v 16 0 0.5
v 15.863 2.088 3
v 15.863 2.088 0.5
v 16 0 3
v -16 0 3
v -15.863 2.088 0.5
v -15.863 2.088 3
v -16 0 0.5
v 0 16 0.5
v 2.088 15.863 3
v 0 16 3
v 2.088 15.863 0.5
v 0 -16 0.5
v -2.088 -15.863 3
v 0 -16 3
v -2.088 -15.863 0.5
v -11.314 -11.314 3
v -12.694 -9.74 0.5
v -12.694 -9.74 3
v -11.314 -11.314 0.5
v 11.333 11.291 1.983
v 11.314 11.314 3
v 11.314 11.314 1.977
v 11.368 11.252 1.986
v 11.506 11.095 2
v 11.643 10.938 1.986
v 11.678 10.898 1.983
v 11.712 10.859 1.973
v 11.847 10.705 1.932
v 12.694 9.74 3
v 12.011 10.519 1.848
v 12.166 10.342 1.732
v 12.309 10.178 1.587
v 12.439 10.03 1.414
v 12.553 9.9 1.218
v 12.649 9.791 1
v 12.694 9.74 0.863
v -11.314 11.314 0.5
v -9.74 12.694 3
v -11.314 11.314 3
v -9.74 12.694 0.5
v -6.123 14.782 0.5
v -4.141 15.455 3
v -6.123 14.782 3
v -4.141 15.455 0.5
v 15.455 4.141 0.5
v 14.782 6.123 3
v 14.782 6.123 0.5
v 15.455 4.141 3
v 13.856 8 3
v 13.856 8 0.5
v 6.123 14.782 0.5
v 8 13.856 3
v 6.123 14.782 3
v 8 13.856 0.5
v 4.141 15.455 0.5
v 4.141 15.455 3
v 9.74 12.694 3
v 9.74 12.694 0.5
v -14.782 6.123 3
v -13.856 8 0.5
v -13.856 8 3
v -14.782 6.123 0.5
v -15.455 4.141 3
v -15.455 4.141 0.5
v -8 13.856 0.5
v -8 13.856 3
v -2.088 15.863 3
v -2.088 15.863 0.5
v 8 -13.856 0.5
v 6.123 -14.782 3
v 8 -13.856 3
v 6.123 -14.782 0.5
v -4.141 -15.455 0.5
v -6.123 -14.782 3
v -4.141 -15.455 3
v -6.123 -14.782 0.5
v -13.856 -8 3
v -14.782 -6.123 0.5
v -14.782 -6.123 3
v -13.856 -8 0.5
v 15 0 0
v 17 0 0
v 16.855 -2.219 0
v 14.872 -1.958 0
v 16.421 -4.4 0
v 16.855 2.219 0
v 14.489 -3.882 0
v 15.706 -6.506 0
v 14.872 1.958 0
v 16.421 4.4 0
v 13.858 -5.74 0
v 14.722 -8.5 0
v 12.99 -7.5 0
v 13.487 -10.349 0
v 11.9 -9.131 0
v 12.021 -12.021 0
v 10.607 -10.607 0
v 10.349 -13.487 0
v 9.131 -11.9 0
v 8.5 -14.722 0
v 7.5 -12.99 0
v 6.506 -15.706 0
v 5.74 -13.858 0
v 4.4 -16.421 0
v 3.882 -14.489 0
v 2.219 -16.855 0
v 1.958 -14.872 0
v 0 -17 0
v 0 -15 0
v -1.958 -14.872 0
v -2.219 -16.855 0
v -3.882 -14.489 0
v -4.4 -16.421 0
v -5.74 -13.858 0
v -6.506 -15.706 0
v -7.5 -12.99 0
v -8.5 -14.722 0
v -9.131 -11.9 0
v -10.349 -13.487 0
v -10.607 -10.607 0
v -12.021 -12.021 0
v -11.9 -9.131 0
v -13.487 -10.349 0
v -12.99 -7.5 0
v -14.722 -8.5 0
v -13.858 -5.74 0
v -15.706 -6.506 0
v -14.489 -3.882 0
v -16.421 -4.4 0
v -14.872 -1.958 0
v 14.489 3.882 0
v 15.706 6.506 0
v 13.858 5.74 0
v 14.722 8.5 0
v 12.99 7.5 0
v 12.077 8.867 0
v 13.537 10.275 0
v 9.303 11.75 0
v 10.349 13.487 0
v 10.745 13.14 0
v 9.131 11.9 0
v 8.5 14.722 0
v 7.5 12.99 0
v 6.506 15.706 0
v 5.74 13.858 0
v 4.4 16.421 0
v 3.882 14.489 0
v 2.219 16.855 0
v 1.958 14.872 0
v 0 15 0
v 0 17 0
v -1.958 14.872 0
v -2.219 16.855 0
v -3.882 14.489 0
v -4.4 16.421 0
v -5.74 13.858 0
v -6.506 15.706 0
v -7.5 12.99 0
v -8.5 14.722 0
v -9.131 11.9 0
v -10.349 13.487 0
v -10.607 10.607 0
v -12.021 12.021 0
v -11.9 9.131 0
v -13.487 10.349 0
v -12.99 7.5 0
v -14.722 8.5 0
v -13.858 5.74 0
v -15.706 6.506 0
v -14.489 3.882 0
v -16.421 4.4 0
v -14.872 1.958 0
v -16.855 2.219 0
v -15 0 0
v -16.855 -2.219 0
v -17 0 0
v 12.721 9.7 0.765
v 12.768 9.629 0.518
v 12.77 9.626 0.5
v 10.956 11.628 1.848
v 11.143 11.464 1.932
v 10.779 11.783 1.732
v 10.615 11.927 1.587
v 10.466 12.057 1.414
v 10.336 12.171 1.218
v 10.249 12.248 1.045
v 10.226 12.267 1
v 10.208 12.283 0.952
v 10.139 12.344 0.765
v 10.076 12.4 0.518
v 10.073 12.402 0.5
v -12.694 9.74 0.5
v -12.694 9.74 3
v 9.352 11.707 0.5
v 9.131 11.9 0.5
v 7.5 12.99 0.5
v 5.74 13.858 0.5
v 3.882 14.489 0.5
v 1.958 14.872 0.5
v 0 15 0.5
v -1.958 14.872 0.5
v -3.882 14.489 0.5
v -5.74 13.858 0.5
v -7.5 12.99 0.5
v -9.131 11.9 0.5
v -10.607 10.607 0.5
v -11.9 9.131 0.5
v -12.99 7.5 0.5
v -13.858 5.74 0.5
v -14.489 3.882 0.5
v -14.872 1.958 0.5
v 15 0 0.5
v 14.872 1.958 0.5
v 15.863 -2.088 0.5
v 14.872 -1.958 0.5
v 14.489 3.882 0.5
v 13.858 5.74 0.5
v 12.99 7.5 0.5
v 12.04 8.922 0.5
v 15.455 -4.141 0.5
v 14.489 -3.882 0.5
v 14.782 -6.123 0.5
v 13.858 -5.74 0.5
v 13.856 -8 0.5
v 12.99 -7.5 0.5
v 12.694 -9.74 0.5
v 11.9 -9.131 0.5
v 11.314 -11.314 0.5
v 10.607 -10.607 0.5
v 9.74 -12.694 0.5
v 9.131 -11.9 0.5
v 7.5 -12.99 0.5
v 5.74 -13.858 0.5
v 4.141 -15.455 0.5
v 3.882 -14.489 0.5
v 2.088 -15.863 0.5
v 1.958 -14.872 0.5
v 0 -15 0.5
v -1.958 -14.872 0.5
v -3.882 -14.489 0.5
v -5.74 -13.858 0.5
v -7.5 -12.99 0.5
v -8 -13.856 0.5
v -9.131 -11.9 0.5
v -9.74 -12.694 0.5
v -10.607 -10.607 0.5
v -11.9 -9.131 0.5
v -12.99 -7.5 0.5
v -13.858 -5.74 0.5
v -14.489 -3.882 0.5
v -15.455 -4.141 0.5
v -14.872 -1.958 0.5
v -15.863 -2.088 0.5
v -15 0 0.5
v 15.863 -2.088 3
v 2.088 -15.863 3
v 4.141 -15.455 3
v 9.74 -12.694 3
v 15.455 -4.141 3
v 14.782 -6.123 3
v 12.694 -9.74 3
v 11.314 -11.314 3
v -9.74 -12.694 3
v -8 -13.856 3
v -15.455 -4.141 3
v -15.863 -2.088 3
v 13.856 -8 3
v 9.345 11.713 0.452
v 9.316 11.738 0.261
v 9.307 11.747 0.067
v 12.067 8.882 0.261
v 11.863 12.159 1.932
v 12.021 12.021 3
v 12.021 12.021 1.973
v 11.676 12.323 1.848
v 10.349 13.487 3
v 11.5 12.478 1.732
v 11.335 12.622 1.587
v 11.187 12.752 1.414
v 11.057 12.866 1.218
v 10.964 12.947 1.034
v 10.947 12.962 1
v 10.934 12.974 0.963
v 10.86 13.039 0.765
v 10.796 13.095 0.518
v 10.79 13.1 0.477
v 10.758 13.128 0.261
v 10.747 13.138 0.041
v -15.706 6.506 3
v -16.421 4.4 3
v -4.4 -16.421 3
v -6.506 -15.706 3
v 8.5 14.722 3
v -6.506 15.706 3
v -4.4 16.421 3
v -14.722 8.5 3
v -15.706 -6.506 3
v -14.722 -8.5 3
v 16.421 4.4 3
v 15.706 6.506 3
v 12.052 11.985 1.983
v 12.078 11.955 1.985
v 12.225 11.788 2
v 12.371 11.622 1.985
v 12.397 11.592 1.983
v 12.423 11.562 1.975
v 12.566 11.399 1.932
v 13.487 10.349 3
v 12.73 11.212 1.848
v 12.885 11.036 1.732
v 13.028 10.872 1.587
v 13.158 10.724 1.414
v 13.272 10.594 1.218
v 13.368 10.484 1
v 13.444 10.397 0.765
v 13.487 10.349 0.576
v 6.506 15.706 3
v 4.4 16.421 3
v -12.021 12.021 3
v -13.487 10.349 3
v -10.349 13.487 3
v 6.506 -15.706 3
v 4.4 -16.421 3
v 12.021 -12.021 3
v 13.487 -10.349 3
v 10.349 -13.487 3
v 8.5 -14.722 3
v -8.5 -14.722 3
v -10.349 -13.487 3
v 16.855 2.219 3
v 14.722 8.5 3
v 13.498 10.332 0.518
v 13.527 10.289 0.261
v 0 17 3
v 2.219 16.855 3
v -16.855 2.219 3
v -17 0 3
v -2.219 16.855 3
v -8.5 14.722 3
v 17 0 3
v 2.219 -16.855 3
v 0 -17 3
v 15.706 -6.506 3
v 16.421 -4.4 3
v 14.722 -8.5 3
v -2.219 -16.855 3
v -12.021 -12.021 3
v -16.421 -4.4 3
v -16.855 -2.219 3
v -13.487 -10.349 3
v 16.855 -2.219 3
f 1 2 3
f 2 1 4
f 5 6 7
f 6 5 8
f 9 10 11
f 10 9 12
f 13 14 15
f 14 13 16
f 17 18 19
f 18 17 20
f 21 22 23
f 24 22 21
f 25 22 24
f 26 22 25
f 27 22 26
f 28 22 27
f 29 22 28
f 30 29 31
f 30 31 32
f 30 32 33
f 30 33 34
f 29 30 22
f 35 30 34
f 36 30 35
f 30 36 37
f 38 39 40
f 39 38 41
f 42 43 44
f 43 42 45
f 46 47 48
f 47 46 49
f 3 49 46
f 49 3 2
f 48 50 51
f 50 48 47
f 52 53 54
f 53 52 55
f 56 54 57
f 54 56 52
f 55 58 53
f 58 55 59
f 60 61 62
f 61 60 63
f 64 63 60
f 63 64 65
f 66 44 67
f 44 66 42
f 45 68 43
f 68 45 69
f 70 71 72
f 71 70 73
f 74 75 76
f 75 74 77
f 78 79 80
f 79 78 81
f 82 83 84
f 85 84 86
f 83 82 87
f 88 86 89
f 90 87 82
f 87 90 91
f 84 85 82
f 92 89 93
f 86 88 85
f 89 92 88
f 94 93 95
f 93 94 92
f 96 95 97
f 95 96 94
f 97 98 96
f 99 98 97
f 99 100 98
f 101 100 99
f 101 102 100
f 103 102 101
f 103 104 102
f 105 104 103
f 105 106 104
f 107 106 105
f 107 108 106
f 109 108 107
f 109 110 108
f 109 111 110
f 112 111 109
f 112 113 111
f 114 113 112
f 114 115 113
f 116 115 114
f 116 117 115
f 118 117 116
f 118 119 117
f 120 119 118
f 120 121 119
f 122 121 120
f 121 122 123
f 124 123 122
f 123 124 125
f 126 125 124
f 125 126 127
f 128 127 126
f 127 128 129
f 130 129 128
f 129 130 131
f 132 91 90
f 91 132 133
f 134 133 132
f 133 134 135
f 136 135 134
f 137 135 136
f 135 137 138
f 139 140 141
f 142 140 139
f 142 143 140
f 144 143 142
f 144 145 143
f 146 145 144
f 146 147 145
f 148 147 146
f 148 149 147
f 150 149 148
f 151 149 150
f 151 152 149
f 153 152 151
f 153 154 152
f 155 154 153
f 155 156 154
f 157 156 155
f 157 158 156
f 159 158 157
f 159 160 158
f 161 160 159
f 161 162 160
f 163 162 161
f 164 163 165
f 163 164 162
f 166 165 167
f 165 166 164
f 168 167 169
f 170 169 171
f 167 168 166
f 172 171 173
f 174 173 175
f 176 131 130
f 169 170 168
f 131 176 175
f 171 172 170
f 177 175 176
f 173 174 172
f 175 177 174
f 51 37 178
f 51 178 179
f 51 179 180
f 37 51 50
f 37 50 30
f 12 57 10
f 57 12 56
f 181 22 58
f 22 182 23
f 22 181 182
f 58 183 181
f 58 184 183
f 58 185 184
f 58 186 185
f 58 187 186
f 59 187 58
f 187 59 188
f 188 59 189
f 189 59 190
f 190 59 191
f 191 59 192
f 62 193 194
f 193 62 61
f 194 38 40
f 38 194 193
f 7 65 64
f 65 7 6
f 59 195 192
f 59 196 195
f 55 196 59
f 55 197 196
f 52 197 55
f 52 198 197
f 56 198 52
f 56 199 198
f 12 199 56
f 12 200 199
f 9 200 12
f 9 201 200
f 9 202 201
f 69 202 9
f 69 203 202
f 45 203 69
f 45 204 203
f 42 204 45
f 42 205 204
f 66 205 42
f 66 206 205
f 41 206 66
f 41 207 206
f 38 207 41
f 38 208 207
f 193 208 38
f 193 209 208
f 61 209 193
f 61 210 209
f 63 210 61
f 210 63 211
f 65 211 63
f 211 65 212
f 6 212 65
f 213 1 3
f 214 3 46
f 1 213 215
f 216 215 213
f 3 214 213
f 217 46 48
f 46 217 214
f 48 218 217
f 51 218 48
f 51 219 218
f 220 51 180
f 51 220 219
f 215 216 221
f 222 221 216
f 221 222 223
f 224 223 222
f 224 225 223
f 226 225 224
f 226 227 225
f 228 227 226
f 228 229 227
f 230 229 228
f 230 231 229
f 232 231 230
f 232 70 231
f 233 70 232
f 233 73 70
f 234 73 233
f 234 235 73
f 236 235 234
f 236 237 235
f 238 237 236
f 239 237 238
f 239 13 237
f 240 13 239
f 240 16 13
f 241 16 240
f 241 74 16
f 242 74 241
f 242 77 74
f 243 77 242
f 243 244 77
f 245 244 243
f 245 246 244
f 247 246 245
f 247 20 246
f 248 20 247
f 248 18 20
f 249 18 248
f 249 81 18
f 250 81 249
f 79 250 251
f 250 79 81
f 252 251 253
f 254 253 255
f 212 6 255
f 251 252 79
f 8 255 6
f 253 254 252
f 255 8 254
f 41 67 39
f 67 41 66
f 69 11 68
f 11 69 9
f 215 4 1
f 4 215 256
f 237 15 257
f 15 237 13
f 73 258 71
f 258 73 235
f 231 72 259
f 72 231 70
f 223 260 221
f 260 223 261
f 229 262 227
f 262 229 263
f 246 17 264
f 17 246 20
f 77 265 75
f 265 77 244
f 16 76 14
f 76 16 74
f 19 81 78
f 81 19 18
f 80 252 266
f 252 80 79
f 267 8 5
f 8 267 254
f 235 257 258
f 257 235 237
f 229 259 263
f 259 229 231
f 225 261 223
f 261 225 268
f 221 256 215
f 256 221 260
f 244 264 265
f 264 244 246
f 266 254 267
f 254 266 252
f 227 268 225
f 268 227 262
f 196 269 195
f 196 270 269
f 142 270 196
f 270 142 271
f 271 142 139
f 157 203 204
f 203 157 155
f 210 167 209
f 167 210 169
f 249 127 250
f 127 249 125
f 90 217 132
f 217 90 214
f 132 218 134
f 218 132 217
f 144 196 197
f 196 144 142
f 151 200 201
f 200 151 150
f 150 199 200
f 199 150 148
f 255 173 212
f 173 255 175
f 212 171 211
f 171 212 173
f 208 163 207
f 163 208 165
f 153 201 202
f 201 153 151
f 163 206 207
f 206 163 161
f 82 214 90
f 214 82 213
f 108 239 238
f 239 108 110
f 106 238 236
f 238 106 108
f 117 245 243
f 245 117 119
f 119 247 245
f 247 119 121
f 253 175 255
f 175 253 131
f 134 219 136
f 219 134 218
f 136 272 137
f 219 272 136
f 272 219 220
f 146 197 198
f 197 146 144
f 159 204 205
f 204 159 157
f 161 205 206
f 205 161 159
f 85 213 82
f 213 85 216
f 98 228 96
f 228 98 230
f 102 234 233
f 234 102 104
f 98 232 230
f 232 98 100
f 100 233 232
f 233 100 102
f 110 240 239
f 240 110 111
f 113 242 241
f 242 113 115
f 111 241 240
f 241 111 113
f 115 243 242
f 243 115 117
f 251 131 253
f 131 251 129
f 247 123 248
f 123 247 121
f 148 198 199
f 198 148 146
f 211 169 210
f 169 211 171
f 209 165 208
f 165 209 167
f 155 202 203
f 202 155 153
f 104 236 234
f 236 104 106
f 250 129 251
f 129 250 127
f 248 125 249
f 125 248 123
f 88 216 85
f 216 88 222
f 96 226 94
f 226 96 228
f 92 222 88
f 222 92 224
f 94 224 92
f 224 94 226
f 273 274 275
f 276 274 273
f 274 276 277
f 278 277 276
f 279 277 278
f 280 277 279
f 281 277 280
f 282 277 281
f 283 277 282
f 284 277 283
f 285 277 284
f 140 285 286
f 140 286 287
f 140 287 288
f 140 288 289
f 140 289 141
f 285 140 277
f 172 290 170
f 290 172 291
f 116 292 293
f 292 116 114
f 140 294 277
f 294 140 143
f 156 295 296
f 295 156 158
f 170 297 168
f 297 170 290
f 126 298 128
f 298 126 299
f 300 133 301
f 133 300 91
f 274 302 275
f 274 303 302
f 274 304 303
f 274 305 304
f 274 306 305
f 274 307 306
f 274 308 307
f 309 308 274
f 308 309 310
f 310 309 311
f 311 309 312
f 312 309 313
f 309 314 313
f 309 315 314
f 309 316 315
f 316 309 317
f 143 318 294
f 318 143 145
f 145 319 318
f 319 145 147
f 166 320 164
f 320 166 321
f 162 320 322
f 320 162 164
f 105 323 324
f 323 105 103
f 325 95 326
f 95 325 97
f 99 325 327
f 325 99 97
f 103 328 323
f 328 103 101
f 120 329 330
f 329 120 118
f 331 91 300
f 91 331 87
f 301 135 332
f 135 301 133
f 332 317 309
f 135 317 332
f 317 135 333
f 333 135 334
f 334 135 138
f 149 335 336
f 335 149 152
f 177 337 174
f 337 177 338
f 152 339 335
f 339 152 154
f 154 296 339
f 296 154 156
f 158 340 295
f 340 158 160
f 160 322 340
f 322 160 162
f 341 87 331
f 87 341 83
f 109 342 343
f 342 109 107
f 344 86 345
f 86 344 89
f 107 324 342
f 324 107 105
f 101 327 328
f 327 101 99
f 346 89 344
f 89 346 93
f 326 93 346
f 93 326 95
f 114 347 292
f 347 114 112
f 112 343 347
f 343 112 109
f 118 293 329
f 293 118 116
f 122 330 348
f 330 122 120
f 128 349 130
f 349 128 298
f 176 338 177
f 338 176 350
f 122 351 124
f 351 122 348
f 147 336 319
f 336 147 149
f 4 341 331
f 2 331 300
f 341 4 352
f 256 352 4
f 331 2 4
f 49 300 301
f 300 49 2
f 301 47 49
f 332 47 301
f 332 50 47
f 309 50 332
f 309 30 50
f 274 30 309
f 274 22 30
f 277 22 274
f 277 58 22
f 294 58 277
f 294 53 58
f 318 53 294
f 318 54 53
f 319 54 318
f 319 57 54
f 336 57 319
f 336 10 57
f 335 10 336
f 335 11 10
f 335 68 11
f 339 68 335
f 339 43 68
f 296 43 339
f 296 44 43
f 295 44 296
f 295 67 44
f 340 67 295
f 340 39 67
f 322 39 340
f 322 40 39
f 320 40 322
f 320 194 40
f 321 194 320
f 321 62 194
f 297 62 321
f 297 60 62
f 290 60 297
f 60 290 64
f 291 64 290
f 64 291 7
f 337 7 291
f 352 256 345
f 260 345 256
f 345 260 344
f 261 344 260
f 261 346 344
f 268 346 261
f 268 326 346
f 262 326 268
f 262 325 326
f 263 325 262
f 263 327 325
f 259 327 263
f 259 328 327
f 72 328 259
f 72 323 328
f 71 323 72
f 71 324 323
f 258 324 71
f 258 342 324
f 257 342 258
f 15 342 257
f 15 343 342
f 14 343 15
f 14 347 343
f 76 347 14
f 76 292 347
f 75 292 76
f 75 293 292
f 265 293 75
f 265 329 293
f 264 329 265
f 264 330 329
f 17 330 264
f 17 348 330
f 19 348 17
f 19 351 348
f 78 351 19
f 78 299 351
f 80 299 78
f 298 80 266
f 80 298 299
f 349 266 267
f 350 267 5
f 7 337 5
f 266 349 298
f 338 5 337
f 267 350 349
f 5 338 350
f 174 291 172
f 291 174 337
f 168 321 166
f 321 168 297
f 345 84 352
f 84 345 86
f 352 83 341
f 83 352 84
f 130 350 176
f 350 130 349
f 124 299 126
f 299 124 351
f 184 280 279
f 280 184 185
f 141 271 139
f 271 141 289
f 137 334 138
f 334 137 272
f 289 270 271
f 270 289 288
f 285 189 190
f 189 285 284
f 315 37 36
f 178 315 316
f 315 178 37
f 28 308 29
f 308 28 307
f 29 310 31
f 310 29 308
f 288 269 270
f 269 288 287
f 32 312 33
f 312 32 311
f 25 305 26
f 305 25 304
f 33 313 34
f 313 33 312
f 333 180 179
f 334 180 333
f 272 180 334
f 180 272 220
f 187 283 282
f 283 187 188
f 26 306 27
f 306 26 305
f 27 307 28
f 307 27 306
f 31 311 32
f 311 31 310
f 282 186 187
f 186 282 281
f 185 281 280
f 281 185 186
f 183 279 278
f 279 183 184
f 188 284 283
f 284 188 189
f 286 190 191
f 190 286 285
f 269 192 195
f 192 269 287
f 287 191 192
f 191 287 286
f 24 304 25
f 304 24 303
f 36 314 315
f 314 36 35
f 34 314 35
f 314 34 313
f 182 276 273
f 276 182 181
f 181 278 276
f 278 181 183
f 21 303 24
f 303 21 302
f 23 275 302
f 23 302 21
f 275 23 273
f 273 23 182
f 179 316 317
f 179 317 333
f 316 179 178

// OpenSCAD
// file: ../build_environments.scad
// build_environments.scad: modules to build level sections
//

module pool(diameter=10.0, wall_height=2.0, step_width=3.0, connections=[])
{
    difference() {
        union() {
        difference() {
            cylinder(h=0.5,r1=diameter+step_width,r2=diameter+step_width,$fn=48);
            translate([0,0,-0.1])
                cylinder(h=0.7,r1=diameter,r2=diameter,$fn=48);
        }
        difference() {
            cylinder(h=wall_height,r1=diameter+step_width+1.0,r2=diameter+step_width+1.0,$fn=48);
            translate([0,0,-0.1])
                cylinder(h=wall_height+0.2,r1=diameter+step_width,r2=diameter+step_width,$fn=48);
        }
        }
    
        for (c = connections)
        {
            rotate([0,90,0]) {
                angle = atan2(c[1],c[0]);
                rotate([-angle,0,0]) {
                    cylinder(h=diameter+5.0,r1=c[2],r2=c[2],$fn=48);
                }
            }
        }
    }
}

module straight(length=10.0, width=2.0, dy1=0.0, dy2=0.0, dz=0.0)
{
    dims = [0, 0, 0, 0, 0, (dz/length)];
    matrix = [
        [ 1, dims[0], dims[1], 0 ],
        [ dims[2], 1, dims[4], 0 ],
        [ dims[5], dims[3], 1, 0 ],
        [ 0, 0, 0, 1 ]
    ];
    multmatrix(matrix)
    difference() {
        translate([dy1,0,0])
        union() {
            rotate([0,90,0]) {
                difference() {
                    cylinder(h=(length-dy1-dy2),r1=width+1.0,r2=width+1.0,$fn=24);
                    translate([0,0,-0.1])
                        cylinder(h=(length-dy1-dy2+0.2),r1=width,r2=width,$fn=24);
                }
                difference() {
                    cylinder(h=1.0,r1=width+2.0,r2=width+2.0,$fn=24);
                    translate([0,0,-0.1])
                        cylinder(h=1.2,r1=width,r2=width,$fn=24);
                }
                translate([0,0,(length-dy1-dy2)-1.0]) {
                    difference() {
                        cylinder(h=1.0,r1=width+2.0,r2=width+2.0,$fn=24);
                        translate([0,0,-0.1])
                            cylinder(h=1.2,r1=width,r2=width,$fn=24);
                    }
                }
            }
        }
        translate([0,0,-(2*width+4.0)/2])
            cube([3*length,3*length,2*width+4.0],center=true);
    }
}

module curve(p0=[0,0], center=[0,0], dir=1, angle=0.0, width=2.0)
{
    radius = sqrt((p0[0]-center[0])*(p0[0]-center[0]) + (p0[1]-center[1])*(p0[1]-center[1]));
    if (dir == 0) {
        difference() {
            rotate([0,0,-90])
            difference() {
                rotate_extrude(angle = angle, convexity = 10, $fn=32)
                    translate([radius, 0, 0])
                        circle(r = width+1.0,$fn=24);
                rotate([0,0,-1.0])
                    rotate_extrude(angle = angle+2.0, convexity = 10, $fn=32)
                        translate([radius, 0, 0])
                            circle(r = width,$fn=24);
            }
            translate([0,0,-(2*width+4.0)/2])
                cube([5*radius,5*radius,2*width+4.0],center=true);
        }
    }
    else {
        difference() {
            rotate([0,0,90])
            difference() {
                rotate_extrude(angle = -angle, convexity = 10, $fn=32)
                    translate([radius, 0, 0])
                        circle(r = width+1.0,$fn=24);
                rotate([0,0,1.0])
                    rotate_extrude(angle = -angle-2.0, convexity = 10, $fn=32)
                        translate([radius, 0, 0])
                            circle(r = width,$fn=24);
            }
            translate([0,0,-(2*width+4.0)/2])
                cube([5*radius,5*radius,2*width+4.0],center=true);
        }
    }

}

// test pool
//pool(diameter=12.0000, wall_height=3.0000, step_width=3.0000, connections=[[0.0000,-26.0000,2.0000], [23.6074,0.0000,2.0000]]);

// test straight, slope
//straight(length=26.0000, width=2.0000, dy1=11.8322, dy2=6.7082, dz=0.0000);
//straight(length=29.1549, width=12.0000, dy1=0.0000, dy2=0.0000, dz=-15.0000);

// test curve
//curve(p0=[23.6074, 0.0000], center=[23.6074, 5.0000], dir=0, angle=60.1011, width=2.0000);
//curve(p0=[33.6426, 12.4219], center=[37.9771, 9.9295], dir=1, angle=120.4627, width=2.0000);
// main file
use <../build_environments.scad>;
pool(diameter=15.0000, wall_height=3.0000, step_width=1.0000, connections=[[28.0000,27.0000,2.0000]]);
